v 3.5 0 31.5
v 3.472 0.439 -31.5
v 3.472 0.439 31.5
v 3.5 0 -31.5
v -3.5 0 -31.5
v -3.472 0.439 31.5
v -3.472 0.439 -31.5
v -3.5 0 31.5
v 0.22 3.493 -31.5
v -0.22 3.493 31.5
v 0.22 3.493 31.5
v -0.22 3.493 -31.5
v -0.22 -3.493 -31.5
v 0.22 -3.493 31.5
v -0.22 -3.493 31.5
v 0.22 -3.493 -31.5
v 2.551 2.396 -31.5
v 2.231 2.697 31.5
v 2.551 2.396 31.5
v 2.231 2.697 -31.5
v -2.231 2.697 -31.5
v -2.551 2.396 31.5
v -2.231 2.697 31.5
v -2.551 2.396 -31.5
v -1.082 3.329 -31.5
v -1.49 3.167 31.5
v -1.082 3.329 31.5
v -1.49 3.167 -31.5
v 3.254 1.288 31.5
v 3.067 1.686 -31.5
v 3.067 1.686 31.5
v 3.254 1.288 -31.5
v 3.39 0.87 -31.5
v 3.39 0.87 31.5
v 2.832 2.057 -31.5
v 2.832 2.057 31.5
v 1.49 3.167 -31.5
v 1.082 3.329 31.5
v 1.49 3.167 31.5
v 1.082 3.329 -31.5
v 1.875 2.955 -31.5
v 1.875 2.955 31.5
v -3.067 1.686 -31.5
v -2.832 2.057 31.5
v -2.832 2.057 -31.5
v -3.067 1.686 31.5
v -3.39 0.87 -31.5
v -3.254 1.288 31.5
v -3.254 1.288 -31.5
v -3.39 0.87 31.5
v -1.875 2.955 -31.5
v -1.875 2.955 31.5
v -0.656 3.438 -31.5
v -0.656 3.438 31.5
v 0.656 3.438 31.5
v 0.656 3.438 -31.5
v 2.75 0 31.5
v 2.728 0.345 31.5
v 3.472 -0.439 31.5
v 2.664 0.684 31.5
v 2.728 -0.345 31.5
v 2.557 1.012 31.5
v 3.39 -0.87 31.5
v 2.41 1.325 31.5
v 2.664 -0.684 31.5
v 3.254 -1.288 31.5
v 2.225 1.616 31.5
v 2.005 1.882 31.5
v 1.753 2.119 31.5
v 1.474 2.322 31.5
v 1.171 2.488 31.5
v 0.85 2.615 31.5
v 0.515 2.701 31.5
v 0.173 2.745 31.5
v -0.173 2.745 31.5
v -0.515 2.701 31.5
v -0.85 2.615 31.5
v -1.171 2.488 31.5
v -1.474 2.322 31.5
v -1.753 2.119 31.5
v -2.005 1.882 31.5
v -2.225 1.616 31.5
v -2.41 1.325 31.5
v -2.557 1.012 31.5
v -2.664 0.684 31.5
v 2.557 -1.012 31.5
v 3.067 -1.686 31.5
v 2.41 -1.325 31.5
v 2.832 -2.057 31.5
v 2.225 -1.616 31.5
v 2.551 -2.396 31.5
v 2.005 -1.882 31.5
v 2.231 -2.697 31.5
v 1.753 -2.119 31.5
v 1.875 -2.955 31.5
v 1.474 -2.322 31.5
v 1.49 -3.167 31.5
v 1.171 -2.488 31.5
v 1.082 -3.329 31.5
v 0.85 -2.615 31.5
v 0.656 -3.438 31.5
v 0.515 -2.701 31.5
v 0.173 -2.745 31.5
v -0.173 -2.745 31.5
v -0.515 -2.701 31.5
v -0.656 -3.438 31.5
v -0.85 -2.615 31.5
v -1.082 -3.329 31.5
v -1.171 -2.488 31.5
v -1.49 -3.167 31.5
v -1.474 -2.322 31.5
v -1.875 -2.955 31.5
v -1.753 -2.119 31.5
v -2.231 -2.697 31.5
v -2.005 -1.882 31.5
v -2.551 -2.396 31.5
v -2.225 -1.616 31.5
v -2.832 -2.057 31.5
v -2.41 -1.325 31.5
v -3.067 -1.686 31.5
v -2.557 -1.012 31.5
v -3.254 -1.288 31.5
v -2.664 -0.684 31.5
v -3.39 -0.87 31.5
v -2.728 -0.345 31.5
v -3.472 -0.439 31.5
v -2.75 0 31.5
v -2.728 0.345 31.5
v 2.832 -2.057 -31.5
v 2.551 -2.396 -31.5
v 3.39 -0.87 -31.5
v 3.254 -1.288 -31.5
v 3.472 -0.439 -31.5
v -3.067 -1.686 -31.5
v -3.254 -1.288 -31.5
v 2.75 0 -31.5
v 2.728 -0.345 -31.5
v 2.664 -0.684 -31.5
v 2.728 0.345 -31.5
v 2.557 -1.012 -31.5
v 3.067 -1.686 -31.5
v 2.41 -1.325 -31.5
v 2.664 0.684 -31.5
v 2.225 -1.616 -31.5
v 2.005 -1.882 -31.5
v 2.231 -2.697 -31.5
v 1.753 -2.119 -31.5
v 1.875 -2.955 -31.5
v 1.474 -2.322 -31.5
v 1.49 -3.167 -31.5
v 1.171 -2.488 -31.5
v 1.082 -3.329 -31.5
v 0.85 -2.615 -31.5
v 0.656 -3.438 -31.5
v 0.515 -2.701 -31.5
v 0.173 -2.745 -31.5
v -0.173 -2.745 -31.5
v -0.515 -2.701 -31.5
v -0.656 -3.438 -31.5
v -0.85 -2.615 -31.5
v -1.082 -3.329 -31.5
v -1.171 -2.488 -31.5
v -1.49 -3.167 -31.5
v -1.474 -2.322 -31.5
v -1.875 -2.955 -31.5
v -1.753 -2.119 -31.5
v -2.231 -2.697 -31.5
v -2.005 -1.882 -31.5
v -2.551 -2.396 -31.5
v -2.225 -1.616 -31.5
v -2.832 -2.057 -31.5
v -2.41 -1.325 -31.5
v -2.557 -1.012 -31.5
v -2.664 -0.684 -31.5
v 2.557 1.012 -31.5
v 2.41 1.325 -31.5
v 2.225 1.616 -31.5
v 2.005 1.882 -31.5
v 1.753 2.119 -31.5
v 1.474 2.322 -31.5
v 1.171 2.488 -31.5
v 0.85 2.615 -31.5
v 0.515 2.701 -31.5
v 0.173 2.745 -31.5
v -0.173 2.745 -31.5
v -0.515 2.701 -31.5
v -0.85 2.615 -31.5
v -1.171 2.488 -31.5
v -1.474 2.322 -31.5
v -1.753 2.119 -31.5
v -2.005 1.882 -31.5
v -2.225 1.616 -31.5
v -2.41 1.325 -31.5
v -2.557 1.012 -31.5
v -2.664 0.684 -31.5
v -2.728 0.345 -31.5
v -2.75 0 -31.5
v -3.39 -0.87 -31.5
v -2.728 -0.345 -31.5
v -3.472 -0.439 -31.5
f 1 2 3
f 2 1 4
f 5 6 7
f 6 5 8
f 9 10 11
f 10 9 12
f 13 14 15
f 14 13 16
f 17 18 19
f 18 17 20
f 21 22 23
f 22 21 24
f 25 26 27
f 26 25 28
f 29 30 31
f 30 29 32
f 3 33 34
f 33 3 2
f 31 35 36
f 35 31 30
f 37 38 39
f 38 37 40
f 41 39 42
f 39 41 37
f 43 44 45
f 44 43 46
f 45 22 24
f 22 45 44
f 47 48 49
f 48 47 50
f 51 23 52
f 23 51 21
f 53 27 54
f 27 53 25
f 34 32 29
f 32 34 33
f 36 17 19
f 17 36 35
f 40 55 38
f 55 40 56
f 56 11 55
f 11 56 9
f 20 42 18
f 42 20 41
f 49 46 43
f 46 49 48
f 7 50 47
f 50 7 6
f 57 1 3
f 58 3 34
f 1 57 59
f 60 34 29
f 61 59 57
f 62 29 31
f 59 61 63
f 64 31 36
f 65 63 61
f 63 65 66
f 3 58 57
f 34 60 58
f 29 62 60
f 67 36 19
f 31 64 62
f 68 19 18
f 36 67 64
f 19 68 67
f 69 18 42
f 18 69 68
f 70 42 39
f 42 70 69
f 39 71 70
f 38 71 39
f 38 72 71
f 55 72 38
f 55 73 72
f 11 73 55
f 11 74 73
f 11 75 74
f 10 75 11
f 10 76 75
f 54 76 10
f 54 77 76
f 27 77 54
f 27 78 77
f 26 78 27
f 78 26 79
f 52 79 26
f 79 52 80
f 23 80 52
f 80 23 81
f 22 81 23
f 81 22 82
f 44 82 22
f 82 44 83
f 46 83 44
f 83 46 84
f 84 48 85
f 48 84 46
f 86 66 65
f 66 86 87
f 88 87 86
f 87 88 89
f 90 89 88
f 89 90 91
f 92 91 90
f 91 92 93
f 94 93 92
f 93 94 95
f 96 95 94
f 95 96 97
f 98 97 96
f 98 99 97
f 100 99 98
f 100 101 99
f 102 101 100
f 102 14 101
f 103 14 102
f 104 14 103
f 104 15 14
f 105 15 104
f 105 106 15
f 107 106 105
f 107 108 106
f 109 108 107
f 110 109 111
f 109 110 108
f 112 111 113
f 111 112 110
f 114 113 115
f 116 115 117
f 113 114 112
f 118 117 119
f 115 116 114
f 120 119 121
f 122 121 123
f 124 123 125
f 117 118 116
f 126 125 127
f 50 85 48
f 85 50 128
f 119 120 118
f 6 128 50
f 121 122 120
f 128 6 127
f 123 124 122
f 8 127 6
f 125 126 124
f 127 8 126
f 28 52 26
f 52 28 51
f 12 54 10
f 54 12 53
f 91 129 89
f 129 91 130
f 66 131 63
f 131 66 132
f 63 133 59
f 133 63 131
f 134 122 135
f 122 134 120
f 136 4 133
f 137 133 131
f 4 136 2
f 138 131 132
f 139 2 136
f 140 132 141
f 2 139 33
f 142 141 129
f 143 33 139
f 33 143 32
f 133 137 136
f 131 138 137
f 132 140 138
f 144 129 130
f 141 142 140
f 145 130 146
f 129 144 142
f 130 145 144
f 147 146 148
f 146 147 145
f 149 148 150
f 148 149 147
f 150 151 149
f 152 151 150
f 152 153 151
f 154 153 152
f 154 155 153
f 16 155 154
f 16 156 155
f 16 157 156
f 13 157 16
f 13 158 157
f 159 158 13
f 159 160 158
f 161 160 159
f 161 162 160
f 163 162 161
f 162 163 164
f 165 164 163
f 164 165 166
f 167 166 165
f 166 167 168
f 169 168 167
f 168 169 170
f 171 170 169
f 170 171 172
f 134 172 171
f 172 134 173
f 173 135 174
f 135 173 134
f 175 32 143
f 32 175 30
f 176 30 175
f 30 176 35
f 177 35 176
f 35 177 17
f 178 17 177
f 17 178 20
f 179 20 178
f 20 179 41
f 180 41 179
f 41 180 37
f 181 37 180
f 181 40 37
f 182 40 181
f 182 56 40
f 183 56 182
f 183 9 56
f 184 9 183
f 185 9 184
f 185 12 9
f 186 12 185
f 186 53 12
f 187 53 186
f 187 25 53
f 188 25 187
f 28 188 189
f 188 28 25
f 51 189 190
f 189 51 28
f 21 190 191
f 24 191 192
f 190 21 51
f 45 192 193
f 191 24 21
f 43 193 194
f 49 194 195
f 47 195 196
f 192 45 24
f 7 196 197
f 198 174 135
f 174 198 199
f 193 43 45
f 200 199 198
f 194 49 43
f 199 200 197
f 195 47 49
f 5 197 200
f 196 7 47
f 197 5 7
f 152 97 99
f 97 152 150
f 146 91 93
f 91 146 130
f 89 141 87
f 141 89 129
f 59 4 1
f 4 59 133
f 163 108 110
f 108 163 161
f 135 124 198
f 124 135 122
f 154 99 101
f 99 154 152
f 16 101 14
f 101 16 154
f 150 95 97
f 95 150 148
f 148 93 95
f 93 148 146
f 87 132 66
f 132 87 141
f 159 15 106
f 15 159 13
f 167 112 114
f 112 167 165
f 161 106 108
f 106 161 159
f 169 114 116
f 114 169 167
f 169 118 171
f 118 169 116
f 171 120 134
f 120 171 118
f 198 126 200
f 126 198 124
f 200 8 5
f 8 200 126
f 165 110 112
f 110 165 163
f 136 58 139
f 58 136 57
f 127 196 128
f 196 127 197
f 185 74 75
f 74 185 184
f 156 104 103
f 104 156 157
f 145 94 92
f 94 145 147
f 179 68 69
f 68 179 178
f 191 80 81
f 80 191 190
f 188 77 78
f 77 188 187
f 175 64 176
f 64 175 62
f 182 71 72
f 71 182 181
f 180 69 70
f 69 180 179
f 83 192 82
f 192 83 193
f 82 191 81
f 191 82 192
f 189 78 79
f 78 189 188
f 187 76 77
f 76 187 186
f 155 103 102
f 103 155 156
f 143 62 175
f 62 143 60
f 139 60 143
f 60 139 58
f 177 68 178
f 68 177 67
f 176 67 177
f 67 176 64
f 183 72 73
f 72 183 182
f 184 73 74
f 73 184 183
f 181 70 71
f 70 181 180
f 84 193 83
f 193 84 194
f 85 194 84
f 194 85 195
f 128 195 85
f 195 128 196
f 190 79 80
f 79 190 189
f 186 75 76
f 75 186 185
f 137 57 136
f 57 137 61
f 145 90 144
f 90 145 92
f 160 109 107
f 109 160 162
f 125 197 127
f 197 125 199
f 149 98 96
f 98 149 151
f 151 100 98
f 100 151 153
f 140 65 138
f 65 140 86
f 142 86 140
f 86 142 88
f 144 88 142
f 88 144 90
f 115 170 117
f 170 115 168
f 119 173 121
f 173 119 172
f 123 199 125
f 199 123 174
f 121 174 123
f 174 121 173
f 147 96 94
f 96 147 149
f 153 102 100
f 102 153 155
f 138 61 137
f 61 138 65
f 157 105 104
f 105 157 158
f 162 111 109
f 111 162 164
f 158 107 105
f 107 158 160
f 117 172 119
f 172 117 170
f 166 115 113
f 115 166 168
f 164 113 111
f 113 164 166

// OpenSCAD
$fn = 50;


difference() {
	union() {
		translate(v = [0, 0, -31.5000000000]) {
			cylinder(h = 63, r = 3.5000000000);
		}
	}
	union() {
		translate(v = [0, 0, -100.0000000000]) {
			cylinder(h = 200, r = 2.7500000000);
		}
	}
}
